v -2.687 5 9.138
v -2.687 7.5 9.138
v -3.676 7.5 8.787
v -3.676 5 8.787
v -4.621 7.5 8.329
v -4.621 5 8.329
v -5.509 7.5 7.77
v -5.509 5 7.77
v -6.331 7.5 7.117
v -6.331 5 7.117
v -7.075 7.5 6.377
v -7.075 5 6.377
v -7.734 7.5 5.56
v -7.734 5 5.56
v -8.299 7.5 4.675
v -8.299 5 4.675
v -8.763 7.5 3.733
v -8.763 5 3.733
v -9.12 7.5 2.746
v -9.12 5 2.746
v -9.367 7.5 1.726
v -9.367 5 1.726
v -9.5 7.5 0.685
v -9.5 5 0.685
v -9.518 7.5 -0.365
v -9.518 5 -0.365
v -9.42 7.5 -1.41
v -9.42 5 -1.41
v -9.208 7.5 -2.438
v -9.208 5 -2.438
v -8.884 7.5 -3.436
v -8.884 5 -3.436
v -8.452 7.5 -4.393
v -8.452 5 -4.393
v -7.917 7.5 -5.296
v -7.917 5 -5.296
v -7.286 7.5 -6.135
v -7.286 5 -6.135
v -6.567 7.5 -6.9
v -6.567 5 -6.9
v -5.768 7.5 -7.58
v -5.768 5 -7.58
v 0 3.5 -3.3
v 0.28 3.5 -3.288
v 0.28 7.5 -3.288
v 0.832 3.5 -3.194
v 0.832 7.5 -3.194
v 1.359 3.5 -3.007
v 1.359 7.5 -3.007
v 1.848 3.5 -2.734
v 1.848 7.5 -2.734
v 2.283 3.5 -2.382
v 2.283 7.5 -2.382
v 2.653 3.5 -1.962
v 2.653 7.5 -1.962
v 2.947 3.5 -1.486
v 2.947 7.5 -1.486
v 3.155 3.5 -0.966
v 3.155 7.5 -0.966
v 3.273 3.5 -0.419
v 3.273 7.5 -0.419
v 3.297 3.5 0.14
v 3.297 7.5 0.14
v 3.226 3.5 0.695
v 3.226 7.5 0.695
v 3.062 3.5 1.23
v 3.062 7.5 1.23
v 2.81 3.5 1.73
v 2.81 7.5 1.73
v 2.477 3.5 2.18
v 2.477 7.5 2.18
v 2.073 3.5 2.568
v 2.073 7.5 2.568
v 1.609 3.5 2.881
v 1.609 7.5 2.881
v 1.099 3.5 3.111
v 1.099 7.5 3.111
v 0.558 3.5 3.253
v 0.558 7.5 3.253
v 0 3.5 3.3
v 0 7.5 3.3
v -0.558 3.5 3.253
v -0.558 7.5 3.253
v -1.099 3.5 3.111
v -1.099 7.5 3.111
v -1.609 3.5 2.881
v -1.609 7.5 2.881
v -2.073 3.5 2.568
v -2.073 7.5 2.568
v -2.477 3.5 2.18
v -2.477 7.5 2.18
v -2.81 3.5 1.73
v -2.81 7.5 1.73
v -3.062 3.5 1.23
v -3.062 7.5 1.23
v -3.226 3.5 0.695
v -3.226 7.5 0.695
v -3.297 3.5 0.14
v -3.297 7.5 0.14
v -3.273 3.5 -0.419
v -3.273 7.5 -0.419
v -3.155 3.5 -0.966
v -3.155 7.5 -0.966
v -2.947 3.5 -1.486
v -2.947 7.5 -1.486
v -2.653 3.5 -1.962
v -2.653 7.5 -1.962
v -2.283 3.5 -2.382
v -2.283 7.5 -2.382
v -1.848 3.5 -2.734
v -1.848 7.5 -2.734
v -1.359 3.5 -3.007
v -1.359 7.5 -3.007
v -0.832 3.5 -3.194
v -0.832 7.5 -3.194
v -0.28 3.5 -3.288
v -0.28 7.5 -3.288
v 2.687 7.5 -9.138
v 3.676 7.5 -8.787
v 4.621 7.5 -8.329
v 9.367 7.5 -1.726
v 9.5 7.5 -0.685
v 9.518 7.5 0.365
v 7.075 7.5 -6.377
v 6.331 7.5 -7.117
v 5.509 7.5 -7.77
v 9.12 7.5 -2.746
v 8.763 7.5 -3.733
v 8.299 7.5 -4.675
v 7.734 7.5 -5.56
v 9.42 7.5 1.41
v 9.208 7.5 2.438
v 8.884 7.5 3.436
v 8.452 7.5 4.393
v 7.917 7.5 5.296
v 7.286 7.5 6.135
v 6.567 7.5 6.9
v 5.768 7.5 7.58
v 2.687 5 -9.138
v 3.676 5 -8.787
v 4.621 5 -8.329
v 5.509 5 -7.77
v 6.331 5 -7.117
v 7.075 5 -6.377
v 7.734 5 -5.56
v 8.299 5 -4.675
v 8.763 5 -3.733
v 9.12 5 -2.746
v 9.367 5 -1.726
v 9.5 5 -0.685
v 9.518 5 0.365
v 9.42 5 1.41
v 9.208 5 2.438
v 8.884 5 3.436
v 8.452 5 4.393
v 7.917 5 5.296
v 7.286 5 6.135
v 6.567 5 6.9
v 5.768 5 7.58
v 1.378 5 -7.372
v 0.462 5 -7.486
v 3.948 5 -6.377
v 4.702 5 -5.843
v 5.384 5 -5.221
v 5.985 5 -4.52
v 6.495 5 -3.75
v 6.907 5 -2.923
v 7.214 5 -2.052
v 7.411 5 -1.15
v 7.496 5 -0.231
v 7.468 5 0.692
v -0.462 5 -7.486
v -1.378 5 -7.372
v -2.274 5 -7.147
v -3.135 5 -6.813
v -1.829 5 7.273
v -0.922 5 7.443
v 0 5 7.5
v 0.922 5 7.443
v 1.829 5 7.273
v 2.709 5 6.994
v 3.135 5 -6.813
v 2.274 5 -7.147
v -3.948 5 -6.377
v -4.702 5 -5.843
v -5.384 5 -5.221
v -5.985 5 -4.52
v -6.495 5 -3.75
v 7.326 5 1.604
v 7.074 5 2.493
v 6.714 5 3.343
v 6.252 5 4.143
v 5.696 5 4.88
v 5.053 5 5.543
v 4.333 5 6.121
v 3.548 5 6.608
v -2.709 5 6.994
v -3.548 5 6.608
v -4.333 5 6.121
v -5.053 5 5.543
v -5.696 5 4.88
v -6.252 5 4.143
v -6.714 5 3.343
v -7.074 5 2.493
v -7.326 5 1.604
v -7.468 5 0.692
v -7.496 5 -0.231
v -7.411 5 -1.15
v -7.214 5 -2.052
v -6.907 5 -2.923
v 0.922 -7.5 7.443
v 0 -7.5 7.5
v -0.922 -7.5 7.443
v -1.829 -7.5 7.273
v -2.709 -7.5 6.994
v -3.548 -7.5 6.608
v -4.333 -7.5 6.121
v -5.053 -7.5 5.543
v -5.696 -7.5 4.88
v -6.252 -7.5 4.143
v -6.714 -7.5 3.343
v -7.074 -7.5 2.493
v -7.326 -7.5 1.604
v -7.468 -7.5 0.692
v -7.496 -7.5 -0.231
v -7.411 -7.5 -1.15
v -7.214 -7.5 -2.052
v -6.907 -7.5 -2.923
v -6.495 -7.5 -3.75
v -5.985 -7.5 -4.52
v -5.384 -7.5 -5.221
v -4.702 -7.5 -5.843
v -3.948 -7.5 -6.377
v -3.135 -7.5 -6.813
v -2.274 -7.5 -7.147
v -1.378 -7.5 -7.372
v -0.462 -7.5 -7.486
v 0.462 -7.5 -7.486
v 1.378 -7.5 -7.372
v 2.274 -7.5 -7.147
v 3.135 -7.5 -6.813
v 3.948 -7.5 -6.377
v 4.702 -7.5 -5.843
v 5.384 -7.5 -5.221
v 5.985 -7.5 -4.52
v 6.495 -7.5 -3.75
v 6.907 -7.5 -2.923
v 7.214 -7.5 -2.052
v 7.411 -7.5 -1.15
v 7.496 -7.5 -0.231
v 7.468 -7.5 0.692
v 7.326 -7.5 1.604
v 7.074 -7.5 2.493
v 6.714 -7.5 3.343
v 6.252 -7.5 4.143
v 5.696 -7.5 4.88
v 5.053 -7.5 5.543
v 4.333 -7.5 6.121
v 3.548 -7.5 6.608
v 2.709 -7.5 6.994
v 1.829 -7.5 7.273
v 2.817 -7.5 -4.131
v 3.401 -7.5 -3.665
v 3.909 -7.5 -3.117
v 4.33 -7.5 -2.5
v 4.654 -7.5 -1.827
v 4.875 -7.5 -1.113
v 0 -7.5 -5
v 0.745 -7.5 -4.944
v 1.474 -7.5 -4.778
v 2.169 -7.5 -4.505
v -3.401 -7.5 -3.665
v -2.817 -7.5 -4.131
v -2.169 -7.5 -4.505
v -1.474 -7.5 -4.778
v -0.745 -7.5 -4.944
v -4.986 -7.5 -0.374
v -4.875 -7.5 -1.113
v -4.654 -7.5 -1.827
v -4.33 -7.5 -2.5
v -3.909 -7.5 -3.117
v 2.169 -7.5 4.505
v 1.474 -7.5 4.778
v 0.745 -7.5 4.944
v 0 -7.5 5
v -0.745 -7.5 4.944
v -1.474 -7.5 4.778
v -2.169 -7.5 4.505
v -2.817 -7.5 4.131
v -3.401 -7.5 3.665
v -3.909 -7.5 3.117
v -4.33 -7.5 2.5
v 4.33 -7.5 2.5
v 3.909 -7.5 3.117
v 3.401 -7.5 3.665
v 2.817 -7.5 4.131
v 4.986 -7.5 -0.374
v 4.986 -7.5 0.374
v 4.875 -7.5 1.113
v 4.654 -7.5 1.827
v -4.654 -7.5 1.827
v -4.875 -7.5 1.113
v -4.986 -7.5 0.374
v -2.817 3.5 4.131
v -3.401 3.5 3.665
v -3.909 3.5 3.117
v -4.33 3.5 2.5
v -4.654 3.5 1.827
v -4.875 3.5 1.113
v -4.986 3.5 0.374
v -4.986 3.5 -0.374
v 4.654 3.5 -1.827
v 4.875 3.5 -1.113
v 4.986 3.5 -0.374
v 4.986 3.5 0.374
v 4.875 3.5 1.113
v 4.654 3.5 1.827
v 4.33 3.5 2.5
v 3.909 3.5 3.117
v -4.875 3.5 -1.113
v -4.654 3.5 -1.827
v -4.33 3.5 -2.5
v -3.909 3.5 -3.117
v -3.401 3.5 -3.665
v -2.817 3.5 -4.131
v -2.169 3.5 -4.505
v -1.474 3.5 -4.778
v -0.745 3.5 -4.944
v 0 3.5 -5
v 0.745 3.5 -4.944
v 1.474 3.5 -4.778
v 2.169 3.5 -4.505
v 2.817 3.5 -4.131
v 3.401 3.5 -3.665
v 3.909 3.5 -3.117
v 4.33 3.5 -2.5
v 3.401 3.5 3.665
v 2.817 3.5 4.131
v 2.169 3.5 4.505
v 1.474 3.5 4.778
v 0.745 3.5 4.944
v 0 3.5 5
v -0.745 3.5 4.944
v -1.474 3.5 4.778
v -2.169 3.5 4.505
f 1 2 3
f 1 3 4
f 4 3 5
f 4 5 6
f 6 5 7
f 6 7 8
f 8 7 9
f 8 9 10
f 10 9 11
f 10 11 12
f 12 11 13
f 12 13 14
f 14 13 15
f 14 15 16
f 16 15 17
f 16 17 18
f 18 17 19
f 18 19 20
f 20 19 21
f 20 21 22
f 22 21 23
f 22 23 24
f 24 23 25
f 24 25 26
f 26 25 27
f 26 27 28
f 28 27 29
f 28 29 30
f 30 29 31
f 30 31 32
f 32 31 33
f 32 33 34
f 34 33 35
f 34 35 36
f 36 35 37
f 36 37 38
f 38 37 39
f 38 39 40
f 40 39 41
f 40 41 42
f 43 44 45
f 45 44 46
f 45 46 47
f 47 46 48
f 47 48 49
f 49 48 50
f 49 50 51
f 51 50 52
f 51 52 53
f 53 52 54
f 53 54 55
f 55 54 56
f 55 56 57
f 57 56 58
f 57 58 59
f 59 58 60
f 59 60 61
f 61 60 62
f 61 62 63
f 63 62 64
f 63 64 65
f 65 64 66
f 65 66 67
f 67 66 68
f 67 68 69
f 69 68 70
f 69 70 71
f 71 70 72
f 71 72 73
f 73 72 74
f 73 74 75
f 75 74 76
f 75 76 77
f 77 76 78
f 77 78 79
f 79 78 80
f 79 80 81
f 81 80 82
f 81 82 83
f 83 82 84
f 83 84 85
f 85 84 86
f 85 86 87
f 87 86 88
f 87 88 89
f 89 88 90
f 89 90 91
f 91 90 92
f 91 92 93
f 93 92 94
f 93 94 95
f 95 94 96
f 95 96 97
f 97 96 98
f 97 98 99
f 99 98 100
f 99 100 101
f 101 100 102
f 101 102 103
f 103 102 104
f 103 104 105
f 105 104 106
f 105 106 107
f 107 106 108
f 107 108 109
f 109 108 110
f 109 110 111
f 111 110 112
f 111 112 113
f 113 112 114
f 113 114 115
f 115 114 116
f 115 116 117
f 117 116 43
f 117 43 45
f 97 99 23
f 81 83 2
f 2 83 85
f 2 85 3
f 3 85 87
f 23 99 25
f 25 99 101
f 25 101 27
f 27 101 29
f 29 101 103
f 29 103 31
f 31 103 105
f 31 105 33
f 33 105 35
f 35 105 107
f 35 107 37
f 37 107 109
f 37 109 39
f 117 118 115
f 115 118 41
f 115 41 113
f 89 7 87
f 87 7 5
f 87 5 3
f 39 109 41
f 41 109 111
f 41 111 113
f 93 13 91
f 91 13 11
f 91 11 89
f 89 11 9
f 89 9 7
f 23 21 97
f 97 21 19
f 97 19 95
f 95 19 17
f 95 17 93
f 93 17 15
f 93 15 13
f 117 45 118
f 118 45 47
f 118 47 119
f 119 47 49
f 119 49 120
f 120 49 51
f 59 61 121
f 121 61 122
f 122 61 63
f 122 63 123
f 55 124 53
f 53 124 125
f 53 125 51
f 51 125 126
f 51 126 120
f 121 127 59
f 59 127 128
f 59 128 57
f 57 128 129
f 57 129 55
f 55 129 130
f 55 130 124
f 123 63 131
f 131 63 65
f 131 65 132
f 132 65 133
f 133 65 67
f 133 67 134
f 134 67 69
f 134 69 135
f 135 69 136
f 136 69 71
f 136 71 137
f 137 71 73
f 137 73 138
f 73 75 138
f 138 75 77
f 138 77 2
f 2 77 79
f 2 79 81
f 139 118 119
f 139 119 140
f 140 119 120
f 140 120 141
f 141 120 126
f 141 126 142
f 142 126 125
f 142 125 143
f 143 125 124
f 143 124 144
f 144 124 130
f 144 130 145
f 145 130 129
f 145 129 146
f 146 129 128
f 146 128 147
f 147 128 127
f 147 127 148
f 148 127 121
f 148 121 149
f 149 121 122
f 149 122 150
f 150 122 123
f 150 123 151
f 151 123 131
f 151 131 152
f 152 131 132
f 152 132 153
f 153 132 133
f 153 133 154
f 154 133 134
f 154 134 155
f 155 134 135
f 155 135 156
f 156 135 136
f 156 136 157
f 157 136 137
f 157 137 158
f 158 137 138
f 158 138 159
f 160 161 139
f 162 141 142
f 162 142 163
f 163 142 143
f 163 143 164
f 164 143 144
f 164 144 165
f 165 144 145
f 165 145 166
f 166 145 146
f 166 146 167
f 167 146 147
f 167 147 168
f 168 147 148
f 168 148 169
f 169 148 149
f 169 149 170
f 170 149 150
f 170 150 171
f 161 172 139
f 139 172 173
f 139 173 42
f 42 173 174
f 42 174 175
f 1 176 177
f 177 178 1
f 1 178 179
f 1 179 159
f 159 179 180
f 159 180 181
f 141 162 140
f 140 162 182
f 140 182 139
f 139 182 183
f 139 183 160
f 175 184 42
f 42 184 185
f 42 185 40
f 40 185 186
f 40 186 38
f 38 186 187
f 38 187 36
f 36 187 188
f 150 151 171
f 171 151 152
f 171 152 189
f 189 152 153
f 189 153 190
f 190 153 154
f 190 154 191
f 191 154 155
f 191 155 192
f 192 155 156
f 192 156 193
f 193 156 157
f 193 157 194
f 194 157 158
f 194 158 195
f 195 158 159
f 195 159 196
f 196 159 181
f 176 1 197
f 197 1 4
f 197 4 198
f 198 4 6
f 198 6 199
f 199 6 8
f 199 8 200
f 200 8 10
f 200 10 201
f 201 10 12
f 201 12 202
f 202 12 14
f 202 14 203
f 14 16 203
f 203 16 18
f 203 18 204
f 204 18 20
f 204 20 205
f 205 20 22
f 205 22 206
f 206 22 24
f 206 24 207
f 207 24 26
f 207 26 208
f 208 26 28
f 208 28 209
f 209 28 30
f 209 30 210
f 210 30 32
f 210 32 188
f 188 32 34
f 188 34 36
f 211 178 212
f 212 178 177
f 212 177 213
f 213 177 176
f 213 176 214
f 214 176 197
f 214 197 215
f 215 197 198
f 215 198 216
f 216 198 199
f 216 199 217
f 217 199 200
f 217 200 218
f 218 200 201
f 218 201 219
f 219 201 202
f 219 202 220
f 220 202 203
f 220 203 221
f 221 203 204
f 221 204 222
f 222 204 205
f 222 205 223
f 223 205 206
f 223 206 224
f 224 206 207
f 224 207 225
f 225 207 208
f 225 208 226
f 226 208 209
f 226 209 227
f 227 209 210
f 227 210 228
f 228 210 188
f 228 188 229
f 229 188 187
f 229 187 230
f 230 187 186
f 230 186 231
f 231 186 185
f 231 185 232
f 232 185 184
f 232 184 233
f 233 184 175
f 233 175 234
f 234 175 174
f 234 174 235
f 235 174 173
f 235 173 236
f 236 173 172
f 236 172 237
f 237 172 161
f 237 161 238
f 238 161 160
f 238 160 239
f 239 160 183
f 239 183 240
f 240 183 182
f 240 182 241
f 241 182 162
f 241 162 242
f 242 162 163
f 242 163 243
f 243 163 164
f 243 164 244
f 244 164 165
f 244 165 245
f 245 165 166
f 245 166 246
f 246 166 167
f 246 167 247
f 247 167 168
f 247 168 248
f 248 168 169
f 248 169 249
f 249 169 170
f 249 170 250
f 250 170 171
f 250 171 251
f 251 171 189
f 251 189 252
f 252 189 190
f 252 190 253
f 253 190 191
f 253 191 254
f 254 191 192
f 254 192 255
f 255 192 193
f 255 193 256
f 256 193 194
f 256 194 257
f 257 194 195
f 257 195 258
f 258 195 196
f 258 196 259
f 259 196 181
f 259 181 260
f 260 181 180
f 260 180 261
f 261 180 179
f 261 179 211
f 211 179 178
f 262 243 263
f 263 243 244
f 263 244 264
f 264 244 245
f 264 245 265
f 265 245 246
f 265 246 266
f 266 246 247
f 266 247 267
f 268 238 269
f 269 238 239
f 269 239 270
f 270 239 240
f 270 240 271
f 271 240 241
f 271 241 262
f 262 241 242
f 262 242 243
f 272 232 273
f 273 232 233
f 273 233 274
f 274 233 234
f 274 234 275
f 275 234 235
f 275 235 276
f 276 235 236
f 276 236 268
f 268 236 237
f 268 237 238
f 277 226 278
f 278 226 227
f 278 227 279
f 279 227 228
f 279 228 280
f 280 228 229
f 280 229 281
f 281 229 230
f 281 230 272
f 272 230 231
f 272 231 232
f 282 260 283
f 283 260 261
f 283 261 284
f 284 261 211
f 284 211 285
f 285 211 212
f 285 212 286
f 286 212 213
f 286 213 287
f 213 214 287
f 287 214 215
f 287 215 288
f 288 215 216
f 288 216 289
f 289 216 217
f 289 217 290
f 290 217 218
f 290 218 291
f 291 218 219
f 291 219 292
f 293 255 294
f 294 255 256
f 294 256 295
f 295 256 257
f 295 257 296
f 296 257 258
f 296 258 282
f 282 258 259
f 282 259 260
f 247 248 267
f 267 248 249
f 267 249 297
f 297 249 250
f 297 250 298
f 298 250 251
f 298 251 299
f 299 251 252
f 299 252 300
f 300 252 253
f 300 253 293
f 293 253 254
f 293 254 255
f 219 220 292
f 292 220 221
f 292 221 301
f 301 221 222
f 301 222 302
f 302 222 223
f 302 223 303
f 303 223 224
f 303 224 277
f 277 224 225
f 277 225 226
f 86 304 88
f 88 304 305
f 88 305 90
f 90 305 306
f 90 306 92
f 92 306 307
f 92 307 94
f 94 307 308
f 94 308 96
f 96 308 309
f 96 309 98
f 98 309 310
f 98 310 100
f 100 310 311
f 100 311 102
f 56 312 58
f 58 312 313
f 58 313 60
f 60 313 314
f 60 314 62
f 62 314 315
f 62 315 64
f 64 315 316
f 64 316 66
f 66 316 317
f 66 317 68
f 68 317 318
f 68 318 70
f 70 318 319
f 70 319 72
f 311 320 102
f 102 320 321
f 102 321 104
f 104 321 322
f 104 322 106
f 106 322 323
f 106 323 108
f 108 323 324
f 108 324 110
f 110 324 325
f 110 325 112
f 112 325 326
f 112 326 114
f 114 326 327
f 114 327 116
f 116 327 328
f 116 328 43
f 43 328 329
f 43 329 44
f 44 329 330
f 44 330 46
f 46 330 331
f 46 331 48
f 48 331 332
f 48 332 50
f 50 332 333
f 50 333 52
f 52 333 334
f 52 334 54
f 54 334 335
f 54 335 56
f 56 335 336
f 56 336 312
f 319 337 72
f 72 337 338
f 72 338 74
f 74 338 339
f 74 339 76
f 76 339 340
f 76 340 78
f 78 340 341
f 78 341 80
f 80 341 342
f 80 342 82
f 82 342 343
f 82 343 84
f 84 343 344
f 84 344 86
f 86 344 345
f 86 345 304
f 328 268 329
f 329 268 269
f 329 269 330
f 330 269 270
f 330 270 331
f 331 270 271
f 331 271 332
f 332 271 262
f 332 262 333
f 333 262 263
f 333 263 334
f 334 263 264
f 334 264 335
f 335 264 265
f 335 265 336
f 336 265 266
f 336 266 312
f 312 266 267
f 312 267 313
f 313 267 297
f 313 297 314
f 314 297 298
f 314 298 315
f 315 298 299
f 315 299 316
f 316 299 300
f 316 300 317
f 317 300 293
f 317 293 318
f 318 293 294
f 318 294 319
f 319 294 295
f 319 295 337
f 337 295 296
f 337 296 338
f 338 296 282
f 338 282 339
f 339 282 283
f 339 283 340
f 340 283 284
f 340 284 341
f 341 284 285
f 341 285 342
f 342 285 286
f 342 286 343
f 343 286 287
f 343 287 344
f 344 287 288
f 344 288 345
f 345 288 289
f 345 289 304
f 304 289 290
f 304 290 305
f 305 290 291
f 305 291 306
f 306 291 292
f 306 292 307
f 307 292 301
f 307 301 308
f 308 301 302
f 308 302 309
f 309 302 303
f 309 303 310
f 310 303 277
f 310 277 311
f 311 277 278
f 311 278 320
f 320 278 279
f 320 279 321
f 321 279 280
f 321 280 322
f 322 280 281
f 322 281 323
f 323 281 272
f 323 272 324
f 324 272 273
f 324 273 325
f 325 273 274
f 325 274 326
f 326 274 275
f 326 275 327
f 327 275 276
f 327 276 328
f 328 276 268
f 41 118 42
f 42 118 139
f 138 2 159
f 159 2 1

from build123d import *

# Parameters (mm, degrees)
SKETCH2_R          = 3.3
CUT_EXTRUDE1_DEPTH = 21.160636151
SKETCH3_R          = 5
CUT_EXTRUDE2_DEPTH = 11
CUT_EXTRUDE3_DEPTH = 21.160636151


with BuildPart() as part:
    # Sketch1 → Revolve1 (revolve)
    with BuildSketch(Plane.XY, mode=Mode.PRIVATE) as revolve1_sk:
        Polygon((0, 7.5), (-9.525, 7.5), (-9.525, 5), (-7.5, 5), (-7.5, -7.5), (0, -7.5), align=None)
    revolve(revolve1_sk.sketch.rotate(Axis((0, 7.5, 0), (0, -1, 0)), 270), axis=Axis((0, 7.5, 0), (0, -1, 0)))

    # Sketch2 → Cut-Extrude1 (cut, through all)
    with BuildSketch(Plane(origin=(0, 7.5, 0), x_dir=(1, 0, 0), z_dir=(0, 1, 0))):
        with Locations(Location((0, 0, 0), (0, 0, 270))):
            Circle(SKETCH2_R)
    extrude(amount=-CUT_EXTRUDE1_DEPTH, mode=Mode.SUBTRACT)

    # Sketch3 → Cut-Extrude2 (cut)
    with BuildSketch(Plane.XZ.offset(7.5)):
        with Locations(Location((0, 0, 0), (0, 0, 270))):
            Circle(SKETCH3_R)
    extrude(amount=-CUT_EXTRUDE2_DEPTH, mode=Mode.SUBTRACT)

    # Sketch4 → Cut-Extrude3 (cut, through all)
    with BuildSketch(Plane(origin=(0, 7.5, 0), x_dir=(1, 0, 0), z_dir=(0, 1, 0))):
        with BuildLine():
            Line((2.686807128, 9.138199629), (-5.767513864, 7.58033039))
            ThreePointArc((-5.767513864, 7.58033039), (-1.726101863, 9.367294025), (2.686807128, 9.138199629))
        make_face()
        with BuildLine():
            Line((5.767513864, -7.58033039), (-2.686807128, -9.138199629))
            ThreePointArc((-2.686807128, -9.138199629), (1.726101863, -9.367294025), (5.767513864, -7.58033039))
        make_face()
    extrude(amount=-CUT_EXTRUDE3_DEPTH, mode=Mode.SUBTRACT)


solid = part.part
